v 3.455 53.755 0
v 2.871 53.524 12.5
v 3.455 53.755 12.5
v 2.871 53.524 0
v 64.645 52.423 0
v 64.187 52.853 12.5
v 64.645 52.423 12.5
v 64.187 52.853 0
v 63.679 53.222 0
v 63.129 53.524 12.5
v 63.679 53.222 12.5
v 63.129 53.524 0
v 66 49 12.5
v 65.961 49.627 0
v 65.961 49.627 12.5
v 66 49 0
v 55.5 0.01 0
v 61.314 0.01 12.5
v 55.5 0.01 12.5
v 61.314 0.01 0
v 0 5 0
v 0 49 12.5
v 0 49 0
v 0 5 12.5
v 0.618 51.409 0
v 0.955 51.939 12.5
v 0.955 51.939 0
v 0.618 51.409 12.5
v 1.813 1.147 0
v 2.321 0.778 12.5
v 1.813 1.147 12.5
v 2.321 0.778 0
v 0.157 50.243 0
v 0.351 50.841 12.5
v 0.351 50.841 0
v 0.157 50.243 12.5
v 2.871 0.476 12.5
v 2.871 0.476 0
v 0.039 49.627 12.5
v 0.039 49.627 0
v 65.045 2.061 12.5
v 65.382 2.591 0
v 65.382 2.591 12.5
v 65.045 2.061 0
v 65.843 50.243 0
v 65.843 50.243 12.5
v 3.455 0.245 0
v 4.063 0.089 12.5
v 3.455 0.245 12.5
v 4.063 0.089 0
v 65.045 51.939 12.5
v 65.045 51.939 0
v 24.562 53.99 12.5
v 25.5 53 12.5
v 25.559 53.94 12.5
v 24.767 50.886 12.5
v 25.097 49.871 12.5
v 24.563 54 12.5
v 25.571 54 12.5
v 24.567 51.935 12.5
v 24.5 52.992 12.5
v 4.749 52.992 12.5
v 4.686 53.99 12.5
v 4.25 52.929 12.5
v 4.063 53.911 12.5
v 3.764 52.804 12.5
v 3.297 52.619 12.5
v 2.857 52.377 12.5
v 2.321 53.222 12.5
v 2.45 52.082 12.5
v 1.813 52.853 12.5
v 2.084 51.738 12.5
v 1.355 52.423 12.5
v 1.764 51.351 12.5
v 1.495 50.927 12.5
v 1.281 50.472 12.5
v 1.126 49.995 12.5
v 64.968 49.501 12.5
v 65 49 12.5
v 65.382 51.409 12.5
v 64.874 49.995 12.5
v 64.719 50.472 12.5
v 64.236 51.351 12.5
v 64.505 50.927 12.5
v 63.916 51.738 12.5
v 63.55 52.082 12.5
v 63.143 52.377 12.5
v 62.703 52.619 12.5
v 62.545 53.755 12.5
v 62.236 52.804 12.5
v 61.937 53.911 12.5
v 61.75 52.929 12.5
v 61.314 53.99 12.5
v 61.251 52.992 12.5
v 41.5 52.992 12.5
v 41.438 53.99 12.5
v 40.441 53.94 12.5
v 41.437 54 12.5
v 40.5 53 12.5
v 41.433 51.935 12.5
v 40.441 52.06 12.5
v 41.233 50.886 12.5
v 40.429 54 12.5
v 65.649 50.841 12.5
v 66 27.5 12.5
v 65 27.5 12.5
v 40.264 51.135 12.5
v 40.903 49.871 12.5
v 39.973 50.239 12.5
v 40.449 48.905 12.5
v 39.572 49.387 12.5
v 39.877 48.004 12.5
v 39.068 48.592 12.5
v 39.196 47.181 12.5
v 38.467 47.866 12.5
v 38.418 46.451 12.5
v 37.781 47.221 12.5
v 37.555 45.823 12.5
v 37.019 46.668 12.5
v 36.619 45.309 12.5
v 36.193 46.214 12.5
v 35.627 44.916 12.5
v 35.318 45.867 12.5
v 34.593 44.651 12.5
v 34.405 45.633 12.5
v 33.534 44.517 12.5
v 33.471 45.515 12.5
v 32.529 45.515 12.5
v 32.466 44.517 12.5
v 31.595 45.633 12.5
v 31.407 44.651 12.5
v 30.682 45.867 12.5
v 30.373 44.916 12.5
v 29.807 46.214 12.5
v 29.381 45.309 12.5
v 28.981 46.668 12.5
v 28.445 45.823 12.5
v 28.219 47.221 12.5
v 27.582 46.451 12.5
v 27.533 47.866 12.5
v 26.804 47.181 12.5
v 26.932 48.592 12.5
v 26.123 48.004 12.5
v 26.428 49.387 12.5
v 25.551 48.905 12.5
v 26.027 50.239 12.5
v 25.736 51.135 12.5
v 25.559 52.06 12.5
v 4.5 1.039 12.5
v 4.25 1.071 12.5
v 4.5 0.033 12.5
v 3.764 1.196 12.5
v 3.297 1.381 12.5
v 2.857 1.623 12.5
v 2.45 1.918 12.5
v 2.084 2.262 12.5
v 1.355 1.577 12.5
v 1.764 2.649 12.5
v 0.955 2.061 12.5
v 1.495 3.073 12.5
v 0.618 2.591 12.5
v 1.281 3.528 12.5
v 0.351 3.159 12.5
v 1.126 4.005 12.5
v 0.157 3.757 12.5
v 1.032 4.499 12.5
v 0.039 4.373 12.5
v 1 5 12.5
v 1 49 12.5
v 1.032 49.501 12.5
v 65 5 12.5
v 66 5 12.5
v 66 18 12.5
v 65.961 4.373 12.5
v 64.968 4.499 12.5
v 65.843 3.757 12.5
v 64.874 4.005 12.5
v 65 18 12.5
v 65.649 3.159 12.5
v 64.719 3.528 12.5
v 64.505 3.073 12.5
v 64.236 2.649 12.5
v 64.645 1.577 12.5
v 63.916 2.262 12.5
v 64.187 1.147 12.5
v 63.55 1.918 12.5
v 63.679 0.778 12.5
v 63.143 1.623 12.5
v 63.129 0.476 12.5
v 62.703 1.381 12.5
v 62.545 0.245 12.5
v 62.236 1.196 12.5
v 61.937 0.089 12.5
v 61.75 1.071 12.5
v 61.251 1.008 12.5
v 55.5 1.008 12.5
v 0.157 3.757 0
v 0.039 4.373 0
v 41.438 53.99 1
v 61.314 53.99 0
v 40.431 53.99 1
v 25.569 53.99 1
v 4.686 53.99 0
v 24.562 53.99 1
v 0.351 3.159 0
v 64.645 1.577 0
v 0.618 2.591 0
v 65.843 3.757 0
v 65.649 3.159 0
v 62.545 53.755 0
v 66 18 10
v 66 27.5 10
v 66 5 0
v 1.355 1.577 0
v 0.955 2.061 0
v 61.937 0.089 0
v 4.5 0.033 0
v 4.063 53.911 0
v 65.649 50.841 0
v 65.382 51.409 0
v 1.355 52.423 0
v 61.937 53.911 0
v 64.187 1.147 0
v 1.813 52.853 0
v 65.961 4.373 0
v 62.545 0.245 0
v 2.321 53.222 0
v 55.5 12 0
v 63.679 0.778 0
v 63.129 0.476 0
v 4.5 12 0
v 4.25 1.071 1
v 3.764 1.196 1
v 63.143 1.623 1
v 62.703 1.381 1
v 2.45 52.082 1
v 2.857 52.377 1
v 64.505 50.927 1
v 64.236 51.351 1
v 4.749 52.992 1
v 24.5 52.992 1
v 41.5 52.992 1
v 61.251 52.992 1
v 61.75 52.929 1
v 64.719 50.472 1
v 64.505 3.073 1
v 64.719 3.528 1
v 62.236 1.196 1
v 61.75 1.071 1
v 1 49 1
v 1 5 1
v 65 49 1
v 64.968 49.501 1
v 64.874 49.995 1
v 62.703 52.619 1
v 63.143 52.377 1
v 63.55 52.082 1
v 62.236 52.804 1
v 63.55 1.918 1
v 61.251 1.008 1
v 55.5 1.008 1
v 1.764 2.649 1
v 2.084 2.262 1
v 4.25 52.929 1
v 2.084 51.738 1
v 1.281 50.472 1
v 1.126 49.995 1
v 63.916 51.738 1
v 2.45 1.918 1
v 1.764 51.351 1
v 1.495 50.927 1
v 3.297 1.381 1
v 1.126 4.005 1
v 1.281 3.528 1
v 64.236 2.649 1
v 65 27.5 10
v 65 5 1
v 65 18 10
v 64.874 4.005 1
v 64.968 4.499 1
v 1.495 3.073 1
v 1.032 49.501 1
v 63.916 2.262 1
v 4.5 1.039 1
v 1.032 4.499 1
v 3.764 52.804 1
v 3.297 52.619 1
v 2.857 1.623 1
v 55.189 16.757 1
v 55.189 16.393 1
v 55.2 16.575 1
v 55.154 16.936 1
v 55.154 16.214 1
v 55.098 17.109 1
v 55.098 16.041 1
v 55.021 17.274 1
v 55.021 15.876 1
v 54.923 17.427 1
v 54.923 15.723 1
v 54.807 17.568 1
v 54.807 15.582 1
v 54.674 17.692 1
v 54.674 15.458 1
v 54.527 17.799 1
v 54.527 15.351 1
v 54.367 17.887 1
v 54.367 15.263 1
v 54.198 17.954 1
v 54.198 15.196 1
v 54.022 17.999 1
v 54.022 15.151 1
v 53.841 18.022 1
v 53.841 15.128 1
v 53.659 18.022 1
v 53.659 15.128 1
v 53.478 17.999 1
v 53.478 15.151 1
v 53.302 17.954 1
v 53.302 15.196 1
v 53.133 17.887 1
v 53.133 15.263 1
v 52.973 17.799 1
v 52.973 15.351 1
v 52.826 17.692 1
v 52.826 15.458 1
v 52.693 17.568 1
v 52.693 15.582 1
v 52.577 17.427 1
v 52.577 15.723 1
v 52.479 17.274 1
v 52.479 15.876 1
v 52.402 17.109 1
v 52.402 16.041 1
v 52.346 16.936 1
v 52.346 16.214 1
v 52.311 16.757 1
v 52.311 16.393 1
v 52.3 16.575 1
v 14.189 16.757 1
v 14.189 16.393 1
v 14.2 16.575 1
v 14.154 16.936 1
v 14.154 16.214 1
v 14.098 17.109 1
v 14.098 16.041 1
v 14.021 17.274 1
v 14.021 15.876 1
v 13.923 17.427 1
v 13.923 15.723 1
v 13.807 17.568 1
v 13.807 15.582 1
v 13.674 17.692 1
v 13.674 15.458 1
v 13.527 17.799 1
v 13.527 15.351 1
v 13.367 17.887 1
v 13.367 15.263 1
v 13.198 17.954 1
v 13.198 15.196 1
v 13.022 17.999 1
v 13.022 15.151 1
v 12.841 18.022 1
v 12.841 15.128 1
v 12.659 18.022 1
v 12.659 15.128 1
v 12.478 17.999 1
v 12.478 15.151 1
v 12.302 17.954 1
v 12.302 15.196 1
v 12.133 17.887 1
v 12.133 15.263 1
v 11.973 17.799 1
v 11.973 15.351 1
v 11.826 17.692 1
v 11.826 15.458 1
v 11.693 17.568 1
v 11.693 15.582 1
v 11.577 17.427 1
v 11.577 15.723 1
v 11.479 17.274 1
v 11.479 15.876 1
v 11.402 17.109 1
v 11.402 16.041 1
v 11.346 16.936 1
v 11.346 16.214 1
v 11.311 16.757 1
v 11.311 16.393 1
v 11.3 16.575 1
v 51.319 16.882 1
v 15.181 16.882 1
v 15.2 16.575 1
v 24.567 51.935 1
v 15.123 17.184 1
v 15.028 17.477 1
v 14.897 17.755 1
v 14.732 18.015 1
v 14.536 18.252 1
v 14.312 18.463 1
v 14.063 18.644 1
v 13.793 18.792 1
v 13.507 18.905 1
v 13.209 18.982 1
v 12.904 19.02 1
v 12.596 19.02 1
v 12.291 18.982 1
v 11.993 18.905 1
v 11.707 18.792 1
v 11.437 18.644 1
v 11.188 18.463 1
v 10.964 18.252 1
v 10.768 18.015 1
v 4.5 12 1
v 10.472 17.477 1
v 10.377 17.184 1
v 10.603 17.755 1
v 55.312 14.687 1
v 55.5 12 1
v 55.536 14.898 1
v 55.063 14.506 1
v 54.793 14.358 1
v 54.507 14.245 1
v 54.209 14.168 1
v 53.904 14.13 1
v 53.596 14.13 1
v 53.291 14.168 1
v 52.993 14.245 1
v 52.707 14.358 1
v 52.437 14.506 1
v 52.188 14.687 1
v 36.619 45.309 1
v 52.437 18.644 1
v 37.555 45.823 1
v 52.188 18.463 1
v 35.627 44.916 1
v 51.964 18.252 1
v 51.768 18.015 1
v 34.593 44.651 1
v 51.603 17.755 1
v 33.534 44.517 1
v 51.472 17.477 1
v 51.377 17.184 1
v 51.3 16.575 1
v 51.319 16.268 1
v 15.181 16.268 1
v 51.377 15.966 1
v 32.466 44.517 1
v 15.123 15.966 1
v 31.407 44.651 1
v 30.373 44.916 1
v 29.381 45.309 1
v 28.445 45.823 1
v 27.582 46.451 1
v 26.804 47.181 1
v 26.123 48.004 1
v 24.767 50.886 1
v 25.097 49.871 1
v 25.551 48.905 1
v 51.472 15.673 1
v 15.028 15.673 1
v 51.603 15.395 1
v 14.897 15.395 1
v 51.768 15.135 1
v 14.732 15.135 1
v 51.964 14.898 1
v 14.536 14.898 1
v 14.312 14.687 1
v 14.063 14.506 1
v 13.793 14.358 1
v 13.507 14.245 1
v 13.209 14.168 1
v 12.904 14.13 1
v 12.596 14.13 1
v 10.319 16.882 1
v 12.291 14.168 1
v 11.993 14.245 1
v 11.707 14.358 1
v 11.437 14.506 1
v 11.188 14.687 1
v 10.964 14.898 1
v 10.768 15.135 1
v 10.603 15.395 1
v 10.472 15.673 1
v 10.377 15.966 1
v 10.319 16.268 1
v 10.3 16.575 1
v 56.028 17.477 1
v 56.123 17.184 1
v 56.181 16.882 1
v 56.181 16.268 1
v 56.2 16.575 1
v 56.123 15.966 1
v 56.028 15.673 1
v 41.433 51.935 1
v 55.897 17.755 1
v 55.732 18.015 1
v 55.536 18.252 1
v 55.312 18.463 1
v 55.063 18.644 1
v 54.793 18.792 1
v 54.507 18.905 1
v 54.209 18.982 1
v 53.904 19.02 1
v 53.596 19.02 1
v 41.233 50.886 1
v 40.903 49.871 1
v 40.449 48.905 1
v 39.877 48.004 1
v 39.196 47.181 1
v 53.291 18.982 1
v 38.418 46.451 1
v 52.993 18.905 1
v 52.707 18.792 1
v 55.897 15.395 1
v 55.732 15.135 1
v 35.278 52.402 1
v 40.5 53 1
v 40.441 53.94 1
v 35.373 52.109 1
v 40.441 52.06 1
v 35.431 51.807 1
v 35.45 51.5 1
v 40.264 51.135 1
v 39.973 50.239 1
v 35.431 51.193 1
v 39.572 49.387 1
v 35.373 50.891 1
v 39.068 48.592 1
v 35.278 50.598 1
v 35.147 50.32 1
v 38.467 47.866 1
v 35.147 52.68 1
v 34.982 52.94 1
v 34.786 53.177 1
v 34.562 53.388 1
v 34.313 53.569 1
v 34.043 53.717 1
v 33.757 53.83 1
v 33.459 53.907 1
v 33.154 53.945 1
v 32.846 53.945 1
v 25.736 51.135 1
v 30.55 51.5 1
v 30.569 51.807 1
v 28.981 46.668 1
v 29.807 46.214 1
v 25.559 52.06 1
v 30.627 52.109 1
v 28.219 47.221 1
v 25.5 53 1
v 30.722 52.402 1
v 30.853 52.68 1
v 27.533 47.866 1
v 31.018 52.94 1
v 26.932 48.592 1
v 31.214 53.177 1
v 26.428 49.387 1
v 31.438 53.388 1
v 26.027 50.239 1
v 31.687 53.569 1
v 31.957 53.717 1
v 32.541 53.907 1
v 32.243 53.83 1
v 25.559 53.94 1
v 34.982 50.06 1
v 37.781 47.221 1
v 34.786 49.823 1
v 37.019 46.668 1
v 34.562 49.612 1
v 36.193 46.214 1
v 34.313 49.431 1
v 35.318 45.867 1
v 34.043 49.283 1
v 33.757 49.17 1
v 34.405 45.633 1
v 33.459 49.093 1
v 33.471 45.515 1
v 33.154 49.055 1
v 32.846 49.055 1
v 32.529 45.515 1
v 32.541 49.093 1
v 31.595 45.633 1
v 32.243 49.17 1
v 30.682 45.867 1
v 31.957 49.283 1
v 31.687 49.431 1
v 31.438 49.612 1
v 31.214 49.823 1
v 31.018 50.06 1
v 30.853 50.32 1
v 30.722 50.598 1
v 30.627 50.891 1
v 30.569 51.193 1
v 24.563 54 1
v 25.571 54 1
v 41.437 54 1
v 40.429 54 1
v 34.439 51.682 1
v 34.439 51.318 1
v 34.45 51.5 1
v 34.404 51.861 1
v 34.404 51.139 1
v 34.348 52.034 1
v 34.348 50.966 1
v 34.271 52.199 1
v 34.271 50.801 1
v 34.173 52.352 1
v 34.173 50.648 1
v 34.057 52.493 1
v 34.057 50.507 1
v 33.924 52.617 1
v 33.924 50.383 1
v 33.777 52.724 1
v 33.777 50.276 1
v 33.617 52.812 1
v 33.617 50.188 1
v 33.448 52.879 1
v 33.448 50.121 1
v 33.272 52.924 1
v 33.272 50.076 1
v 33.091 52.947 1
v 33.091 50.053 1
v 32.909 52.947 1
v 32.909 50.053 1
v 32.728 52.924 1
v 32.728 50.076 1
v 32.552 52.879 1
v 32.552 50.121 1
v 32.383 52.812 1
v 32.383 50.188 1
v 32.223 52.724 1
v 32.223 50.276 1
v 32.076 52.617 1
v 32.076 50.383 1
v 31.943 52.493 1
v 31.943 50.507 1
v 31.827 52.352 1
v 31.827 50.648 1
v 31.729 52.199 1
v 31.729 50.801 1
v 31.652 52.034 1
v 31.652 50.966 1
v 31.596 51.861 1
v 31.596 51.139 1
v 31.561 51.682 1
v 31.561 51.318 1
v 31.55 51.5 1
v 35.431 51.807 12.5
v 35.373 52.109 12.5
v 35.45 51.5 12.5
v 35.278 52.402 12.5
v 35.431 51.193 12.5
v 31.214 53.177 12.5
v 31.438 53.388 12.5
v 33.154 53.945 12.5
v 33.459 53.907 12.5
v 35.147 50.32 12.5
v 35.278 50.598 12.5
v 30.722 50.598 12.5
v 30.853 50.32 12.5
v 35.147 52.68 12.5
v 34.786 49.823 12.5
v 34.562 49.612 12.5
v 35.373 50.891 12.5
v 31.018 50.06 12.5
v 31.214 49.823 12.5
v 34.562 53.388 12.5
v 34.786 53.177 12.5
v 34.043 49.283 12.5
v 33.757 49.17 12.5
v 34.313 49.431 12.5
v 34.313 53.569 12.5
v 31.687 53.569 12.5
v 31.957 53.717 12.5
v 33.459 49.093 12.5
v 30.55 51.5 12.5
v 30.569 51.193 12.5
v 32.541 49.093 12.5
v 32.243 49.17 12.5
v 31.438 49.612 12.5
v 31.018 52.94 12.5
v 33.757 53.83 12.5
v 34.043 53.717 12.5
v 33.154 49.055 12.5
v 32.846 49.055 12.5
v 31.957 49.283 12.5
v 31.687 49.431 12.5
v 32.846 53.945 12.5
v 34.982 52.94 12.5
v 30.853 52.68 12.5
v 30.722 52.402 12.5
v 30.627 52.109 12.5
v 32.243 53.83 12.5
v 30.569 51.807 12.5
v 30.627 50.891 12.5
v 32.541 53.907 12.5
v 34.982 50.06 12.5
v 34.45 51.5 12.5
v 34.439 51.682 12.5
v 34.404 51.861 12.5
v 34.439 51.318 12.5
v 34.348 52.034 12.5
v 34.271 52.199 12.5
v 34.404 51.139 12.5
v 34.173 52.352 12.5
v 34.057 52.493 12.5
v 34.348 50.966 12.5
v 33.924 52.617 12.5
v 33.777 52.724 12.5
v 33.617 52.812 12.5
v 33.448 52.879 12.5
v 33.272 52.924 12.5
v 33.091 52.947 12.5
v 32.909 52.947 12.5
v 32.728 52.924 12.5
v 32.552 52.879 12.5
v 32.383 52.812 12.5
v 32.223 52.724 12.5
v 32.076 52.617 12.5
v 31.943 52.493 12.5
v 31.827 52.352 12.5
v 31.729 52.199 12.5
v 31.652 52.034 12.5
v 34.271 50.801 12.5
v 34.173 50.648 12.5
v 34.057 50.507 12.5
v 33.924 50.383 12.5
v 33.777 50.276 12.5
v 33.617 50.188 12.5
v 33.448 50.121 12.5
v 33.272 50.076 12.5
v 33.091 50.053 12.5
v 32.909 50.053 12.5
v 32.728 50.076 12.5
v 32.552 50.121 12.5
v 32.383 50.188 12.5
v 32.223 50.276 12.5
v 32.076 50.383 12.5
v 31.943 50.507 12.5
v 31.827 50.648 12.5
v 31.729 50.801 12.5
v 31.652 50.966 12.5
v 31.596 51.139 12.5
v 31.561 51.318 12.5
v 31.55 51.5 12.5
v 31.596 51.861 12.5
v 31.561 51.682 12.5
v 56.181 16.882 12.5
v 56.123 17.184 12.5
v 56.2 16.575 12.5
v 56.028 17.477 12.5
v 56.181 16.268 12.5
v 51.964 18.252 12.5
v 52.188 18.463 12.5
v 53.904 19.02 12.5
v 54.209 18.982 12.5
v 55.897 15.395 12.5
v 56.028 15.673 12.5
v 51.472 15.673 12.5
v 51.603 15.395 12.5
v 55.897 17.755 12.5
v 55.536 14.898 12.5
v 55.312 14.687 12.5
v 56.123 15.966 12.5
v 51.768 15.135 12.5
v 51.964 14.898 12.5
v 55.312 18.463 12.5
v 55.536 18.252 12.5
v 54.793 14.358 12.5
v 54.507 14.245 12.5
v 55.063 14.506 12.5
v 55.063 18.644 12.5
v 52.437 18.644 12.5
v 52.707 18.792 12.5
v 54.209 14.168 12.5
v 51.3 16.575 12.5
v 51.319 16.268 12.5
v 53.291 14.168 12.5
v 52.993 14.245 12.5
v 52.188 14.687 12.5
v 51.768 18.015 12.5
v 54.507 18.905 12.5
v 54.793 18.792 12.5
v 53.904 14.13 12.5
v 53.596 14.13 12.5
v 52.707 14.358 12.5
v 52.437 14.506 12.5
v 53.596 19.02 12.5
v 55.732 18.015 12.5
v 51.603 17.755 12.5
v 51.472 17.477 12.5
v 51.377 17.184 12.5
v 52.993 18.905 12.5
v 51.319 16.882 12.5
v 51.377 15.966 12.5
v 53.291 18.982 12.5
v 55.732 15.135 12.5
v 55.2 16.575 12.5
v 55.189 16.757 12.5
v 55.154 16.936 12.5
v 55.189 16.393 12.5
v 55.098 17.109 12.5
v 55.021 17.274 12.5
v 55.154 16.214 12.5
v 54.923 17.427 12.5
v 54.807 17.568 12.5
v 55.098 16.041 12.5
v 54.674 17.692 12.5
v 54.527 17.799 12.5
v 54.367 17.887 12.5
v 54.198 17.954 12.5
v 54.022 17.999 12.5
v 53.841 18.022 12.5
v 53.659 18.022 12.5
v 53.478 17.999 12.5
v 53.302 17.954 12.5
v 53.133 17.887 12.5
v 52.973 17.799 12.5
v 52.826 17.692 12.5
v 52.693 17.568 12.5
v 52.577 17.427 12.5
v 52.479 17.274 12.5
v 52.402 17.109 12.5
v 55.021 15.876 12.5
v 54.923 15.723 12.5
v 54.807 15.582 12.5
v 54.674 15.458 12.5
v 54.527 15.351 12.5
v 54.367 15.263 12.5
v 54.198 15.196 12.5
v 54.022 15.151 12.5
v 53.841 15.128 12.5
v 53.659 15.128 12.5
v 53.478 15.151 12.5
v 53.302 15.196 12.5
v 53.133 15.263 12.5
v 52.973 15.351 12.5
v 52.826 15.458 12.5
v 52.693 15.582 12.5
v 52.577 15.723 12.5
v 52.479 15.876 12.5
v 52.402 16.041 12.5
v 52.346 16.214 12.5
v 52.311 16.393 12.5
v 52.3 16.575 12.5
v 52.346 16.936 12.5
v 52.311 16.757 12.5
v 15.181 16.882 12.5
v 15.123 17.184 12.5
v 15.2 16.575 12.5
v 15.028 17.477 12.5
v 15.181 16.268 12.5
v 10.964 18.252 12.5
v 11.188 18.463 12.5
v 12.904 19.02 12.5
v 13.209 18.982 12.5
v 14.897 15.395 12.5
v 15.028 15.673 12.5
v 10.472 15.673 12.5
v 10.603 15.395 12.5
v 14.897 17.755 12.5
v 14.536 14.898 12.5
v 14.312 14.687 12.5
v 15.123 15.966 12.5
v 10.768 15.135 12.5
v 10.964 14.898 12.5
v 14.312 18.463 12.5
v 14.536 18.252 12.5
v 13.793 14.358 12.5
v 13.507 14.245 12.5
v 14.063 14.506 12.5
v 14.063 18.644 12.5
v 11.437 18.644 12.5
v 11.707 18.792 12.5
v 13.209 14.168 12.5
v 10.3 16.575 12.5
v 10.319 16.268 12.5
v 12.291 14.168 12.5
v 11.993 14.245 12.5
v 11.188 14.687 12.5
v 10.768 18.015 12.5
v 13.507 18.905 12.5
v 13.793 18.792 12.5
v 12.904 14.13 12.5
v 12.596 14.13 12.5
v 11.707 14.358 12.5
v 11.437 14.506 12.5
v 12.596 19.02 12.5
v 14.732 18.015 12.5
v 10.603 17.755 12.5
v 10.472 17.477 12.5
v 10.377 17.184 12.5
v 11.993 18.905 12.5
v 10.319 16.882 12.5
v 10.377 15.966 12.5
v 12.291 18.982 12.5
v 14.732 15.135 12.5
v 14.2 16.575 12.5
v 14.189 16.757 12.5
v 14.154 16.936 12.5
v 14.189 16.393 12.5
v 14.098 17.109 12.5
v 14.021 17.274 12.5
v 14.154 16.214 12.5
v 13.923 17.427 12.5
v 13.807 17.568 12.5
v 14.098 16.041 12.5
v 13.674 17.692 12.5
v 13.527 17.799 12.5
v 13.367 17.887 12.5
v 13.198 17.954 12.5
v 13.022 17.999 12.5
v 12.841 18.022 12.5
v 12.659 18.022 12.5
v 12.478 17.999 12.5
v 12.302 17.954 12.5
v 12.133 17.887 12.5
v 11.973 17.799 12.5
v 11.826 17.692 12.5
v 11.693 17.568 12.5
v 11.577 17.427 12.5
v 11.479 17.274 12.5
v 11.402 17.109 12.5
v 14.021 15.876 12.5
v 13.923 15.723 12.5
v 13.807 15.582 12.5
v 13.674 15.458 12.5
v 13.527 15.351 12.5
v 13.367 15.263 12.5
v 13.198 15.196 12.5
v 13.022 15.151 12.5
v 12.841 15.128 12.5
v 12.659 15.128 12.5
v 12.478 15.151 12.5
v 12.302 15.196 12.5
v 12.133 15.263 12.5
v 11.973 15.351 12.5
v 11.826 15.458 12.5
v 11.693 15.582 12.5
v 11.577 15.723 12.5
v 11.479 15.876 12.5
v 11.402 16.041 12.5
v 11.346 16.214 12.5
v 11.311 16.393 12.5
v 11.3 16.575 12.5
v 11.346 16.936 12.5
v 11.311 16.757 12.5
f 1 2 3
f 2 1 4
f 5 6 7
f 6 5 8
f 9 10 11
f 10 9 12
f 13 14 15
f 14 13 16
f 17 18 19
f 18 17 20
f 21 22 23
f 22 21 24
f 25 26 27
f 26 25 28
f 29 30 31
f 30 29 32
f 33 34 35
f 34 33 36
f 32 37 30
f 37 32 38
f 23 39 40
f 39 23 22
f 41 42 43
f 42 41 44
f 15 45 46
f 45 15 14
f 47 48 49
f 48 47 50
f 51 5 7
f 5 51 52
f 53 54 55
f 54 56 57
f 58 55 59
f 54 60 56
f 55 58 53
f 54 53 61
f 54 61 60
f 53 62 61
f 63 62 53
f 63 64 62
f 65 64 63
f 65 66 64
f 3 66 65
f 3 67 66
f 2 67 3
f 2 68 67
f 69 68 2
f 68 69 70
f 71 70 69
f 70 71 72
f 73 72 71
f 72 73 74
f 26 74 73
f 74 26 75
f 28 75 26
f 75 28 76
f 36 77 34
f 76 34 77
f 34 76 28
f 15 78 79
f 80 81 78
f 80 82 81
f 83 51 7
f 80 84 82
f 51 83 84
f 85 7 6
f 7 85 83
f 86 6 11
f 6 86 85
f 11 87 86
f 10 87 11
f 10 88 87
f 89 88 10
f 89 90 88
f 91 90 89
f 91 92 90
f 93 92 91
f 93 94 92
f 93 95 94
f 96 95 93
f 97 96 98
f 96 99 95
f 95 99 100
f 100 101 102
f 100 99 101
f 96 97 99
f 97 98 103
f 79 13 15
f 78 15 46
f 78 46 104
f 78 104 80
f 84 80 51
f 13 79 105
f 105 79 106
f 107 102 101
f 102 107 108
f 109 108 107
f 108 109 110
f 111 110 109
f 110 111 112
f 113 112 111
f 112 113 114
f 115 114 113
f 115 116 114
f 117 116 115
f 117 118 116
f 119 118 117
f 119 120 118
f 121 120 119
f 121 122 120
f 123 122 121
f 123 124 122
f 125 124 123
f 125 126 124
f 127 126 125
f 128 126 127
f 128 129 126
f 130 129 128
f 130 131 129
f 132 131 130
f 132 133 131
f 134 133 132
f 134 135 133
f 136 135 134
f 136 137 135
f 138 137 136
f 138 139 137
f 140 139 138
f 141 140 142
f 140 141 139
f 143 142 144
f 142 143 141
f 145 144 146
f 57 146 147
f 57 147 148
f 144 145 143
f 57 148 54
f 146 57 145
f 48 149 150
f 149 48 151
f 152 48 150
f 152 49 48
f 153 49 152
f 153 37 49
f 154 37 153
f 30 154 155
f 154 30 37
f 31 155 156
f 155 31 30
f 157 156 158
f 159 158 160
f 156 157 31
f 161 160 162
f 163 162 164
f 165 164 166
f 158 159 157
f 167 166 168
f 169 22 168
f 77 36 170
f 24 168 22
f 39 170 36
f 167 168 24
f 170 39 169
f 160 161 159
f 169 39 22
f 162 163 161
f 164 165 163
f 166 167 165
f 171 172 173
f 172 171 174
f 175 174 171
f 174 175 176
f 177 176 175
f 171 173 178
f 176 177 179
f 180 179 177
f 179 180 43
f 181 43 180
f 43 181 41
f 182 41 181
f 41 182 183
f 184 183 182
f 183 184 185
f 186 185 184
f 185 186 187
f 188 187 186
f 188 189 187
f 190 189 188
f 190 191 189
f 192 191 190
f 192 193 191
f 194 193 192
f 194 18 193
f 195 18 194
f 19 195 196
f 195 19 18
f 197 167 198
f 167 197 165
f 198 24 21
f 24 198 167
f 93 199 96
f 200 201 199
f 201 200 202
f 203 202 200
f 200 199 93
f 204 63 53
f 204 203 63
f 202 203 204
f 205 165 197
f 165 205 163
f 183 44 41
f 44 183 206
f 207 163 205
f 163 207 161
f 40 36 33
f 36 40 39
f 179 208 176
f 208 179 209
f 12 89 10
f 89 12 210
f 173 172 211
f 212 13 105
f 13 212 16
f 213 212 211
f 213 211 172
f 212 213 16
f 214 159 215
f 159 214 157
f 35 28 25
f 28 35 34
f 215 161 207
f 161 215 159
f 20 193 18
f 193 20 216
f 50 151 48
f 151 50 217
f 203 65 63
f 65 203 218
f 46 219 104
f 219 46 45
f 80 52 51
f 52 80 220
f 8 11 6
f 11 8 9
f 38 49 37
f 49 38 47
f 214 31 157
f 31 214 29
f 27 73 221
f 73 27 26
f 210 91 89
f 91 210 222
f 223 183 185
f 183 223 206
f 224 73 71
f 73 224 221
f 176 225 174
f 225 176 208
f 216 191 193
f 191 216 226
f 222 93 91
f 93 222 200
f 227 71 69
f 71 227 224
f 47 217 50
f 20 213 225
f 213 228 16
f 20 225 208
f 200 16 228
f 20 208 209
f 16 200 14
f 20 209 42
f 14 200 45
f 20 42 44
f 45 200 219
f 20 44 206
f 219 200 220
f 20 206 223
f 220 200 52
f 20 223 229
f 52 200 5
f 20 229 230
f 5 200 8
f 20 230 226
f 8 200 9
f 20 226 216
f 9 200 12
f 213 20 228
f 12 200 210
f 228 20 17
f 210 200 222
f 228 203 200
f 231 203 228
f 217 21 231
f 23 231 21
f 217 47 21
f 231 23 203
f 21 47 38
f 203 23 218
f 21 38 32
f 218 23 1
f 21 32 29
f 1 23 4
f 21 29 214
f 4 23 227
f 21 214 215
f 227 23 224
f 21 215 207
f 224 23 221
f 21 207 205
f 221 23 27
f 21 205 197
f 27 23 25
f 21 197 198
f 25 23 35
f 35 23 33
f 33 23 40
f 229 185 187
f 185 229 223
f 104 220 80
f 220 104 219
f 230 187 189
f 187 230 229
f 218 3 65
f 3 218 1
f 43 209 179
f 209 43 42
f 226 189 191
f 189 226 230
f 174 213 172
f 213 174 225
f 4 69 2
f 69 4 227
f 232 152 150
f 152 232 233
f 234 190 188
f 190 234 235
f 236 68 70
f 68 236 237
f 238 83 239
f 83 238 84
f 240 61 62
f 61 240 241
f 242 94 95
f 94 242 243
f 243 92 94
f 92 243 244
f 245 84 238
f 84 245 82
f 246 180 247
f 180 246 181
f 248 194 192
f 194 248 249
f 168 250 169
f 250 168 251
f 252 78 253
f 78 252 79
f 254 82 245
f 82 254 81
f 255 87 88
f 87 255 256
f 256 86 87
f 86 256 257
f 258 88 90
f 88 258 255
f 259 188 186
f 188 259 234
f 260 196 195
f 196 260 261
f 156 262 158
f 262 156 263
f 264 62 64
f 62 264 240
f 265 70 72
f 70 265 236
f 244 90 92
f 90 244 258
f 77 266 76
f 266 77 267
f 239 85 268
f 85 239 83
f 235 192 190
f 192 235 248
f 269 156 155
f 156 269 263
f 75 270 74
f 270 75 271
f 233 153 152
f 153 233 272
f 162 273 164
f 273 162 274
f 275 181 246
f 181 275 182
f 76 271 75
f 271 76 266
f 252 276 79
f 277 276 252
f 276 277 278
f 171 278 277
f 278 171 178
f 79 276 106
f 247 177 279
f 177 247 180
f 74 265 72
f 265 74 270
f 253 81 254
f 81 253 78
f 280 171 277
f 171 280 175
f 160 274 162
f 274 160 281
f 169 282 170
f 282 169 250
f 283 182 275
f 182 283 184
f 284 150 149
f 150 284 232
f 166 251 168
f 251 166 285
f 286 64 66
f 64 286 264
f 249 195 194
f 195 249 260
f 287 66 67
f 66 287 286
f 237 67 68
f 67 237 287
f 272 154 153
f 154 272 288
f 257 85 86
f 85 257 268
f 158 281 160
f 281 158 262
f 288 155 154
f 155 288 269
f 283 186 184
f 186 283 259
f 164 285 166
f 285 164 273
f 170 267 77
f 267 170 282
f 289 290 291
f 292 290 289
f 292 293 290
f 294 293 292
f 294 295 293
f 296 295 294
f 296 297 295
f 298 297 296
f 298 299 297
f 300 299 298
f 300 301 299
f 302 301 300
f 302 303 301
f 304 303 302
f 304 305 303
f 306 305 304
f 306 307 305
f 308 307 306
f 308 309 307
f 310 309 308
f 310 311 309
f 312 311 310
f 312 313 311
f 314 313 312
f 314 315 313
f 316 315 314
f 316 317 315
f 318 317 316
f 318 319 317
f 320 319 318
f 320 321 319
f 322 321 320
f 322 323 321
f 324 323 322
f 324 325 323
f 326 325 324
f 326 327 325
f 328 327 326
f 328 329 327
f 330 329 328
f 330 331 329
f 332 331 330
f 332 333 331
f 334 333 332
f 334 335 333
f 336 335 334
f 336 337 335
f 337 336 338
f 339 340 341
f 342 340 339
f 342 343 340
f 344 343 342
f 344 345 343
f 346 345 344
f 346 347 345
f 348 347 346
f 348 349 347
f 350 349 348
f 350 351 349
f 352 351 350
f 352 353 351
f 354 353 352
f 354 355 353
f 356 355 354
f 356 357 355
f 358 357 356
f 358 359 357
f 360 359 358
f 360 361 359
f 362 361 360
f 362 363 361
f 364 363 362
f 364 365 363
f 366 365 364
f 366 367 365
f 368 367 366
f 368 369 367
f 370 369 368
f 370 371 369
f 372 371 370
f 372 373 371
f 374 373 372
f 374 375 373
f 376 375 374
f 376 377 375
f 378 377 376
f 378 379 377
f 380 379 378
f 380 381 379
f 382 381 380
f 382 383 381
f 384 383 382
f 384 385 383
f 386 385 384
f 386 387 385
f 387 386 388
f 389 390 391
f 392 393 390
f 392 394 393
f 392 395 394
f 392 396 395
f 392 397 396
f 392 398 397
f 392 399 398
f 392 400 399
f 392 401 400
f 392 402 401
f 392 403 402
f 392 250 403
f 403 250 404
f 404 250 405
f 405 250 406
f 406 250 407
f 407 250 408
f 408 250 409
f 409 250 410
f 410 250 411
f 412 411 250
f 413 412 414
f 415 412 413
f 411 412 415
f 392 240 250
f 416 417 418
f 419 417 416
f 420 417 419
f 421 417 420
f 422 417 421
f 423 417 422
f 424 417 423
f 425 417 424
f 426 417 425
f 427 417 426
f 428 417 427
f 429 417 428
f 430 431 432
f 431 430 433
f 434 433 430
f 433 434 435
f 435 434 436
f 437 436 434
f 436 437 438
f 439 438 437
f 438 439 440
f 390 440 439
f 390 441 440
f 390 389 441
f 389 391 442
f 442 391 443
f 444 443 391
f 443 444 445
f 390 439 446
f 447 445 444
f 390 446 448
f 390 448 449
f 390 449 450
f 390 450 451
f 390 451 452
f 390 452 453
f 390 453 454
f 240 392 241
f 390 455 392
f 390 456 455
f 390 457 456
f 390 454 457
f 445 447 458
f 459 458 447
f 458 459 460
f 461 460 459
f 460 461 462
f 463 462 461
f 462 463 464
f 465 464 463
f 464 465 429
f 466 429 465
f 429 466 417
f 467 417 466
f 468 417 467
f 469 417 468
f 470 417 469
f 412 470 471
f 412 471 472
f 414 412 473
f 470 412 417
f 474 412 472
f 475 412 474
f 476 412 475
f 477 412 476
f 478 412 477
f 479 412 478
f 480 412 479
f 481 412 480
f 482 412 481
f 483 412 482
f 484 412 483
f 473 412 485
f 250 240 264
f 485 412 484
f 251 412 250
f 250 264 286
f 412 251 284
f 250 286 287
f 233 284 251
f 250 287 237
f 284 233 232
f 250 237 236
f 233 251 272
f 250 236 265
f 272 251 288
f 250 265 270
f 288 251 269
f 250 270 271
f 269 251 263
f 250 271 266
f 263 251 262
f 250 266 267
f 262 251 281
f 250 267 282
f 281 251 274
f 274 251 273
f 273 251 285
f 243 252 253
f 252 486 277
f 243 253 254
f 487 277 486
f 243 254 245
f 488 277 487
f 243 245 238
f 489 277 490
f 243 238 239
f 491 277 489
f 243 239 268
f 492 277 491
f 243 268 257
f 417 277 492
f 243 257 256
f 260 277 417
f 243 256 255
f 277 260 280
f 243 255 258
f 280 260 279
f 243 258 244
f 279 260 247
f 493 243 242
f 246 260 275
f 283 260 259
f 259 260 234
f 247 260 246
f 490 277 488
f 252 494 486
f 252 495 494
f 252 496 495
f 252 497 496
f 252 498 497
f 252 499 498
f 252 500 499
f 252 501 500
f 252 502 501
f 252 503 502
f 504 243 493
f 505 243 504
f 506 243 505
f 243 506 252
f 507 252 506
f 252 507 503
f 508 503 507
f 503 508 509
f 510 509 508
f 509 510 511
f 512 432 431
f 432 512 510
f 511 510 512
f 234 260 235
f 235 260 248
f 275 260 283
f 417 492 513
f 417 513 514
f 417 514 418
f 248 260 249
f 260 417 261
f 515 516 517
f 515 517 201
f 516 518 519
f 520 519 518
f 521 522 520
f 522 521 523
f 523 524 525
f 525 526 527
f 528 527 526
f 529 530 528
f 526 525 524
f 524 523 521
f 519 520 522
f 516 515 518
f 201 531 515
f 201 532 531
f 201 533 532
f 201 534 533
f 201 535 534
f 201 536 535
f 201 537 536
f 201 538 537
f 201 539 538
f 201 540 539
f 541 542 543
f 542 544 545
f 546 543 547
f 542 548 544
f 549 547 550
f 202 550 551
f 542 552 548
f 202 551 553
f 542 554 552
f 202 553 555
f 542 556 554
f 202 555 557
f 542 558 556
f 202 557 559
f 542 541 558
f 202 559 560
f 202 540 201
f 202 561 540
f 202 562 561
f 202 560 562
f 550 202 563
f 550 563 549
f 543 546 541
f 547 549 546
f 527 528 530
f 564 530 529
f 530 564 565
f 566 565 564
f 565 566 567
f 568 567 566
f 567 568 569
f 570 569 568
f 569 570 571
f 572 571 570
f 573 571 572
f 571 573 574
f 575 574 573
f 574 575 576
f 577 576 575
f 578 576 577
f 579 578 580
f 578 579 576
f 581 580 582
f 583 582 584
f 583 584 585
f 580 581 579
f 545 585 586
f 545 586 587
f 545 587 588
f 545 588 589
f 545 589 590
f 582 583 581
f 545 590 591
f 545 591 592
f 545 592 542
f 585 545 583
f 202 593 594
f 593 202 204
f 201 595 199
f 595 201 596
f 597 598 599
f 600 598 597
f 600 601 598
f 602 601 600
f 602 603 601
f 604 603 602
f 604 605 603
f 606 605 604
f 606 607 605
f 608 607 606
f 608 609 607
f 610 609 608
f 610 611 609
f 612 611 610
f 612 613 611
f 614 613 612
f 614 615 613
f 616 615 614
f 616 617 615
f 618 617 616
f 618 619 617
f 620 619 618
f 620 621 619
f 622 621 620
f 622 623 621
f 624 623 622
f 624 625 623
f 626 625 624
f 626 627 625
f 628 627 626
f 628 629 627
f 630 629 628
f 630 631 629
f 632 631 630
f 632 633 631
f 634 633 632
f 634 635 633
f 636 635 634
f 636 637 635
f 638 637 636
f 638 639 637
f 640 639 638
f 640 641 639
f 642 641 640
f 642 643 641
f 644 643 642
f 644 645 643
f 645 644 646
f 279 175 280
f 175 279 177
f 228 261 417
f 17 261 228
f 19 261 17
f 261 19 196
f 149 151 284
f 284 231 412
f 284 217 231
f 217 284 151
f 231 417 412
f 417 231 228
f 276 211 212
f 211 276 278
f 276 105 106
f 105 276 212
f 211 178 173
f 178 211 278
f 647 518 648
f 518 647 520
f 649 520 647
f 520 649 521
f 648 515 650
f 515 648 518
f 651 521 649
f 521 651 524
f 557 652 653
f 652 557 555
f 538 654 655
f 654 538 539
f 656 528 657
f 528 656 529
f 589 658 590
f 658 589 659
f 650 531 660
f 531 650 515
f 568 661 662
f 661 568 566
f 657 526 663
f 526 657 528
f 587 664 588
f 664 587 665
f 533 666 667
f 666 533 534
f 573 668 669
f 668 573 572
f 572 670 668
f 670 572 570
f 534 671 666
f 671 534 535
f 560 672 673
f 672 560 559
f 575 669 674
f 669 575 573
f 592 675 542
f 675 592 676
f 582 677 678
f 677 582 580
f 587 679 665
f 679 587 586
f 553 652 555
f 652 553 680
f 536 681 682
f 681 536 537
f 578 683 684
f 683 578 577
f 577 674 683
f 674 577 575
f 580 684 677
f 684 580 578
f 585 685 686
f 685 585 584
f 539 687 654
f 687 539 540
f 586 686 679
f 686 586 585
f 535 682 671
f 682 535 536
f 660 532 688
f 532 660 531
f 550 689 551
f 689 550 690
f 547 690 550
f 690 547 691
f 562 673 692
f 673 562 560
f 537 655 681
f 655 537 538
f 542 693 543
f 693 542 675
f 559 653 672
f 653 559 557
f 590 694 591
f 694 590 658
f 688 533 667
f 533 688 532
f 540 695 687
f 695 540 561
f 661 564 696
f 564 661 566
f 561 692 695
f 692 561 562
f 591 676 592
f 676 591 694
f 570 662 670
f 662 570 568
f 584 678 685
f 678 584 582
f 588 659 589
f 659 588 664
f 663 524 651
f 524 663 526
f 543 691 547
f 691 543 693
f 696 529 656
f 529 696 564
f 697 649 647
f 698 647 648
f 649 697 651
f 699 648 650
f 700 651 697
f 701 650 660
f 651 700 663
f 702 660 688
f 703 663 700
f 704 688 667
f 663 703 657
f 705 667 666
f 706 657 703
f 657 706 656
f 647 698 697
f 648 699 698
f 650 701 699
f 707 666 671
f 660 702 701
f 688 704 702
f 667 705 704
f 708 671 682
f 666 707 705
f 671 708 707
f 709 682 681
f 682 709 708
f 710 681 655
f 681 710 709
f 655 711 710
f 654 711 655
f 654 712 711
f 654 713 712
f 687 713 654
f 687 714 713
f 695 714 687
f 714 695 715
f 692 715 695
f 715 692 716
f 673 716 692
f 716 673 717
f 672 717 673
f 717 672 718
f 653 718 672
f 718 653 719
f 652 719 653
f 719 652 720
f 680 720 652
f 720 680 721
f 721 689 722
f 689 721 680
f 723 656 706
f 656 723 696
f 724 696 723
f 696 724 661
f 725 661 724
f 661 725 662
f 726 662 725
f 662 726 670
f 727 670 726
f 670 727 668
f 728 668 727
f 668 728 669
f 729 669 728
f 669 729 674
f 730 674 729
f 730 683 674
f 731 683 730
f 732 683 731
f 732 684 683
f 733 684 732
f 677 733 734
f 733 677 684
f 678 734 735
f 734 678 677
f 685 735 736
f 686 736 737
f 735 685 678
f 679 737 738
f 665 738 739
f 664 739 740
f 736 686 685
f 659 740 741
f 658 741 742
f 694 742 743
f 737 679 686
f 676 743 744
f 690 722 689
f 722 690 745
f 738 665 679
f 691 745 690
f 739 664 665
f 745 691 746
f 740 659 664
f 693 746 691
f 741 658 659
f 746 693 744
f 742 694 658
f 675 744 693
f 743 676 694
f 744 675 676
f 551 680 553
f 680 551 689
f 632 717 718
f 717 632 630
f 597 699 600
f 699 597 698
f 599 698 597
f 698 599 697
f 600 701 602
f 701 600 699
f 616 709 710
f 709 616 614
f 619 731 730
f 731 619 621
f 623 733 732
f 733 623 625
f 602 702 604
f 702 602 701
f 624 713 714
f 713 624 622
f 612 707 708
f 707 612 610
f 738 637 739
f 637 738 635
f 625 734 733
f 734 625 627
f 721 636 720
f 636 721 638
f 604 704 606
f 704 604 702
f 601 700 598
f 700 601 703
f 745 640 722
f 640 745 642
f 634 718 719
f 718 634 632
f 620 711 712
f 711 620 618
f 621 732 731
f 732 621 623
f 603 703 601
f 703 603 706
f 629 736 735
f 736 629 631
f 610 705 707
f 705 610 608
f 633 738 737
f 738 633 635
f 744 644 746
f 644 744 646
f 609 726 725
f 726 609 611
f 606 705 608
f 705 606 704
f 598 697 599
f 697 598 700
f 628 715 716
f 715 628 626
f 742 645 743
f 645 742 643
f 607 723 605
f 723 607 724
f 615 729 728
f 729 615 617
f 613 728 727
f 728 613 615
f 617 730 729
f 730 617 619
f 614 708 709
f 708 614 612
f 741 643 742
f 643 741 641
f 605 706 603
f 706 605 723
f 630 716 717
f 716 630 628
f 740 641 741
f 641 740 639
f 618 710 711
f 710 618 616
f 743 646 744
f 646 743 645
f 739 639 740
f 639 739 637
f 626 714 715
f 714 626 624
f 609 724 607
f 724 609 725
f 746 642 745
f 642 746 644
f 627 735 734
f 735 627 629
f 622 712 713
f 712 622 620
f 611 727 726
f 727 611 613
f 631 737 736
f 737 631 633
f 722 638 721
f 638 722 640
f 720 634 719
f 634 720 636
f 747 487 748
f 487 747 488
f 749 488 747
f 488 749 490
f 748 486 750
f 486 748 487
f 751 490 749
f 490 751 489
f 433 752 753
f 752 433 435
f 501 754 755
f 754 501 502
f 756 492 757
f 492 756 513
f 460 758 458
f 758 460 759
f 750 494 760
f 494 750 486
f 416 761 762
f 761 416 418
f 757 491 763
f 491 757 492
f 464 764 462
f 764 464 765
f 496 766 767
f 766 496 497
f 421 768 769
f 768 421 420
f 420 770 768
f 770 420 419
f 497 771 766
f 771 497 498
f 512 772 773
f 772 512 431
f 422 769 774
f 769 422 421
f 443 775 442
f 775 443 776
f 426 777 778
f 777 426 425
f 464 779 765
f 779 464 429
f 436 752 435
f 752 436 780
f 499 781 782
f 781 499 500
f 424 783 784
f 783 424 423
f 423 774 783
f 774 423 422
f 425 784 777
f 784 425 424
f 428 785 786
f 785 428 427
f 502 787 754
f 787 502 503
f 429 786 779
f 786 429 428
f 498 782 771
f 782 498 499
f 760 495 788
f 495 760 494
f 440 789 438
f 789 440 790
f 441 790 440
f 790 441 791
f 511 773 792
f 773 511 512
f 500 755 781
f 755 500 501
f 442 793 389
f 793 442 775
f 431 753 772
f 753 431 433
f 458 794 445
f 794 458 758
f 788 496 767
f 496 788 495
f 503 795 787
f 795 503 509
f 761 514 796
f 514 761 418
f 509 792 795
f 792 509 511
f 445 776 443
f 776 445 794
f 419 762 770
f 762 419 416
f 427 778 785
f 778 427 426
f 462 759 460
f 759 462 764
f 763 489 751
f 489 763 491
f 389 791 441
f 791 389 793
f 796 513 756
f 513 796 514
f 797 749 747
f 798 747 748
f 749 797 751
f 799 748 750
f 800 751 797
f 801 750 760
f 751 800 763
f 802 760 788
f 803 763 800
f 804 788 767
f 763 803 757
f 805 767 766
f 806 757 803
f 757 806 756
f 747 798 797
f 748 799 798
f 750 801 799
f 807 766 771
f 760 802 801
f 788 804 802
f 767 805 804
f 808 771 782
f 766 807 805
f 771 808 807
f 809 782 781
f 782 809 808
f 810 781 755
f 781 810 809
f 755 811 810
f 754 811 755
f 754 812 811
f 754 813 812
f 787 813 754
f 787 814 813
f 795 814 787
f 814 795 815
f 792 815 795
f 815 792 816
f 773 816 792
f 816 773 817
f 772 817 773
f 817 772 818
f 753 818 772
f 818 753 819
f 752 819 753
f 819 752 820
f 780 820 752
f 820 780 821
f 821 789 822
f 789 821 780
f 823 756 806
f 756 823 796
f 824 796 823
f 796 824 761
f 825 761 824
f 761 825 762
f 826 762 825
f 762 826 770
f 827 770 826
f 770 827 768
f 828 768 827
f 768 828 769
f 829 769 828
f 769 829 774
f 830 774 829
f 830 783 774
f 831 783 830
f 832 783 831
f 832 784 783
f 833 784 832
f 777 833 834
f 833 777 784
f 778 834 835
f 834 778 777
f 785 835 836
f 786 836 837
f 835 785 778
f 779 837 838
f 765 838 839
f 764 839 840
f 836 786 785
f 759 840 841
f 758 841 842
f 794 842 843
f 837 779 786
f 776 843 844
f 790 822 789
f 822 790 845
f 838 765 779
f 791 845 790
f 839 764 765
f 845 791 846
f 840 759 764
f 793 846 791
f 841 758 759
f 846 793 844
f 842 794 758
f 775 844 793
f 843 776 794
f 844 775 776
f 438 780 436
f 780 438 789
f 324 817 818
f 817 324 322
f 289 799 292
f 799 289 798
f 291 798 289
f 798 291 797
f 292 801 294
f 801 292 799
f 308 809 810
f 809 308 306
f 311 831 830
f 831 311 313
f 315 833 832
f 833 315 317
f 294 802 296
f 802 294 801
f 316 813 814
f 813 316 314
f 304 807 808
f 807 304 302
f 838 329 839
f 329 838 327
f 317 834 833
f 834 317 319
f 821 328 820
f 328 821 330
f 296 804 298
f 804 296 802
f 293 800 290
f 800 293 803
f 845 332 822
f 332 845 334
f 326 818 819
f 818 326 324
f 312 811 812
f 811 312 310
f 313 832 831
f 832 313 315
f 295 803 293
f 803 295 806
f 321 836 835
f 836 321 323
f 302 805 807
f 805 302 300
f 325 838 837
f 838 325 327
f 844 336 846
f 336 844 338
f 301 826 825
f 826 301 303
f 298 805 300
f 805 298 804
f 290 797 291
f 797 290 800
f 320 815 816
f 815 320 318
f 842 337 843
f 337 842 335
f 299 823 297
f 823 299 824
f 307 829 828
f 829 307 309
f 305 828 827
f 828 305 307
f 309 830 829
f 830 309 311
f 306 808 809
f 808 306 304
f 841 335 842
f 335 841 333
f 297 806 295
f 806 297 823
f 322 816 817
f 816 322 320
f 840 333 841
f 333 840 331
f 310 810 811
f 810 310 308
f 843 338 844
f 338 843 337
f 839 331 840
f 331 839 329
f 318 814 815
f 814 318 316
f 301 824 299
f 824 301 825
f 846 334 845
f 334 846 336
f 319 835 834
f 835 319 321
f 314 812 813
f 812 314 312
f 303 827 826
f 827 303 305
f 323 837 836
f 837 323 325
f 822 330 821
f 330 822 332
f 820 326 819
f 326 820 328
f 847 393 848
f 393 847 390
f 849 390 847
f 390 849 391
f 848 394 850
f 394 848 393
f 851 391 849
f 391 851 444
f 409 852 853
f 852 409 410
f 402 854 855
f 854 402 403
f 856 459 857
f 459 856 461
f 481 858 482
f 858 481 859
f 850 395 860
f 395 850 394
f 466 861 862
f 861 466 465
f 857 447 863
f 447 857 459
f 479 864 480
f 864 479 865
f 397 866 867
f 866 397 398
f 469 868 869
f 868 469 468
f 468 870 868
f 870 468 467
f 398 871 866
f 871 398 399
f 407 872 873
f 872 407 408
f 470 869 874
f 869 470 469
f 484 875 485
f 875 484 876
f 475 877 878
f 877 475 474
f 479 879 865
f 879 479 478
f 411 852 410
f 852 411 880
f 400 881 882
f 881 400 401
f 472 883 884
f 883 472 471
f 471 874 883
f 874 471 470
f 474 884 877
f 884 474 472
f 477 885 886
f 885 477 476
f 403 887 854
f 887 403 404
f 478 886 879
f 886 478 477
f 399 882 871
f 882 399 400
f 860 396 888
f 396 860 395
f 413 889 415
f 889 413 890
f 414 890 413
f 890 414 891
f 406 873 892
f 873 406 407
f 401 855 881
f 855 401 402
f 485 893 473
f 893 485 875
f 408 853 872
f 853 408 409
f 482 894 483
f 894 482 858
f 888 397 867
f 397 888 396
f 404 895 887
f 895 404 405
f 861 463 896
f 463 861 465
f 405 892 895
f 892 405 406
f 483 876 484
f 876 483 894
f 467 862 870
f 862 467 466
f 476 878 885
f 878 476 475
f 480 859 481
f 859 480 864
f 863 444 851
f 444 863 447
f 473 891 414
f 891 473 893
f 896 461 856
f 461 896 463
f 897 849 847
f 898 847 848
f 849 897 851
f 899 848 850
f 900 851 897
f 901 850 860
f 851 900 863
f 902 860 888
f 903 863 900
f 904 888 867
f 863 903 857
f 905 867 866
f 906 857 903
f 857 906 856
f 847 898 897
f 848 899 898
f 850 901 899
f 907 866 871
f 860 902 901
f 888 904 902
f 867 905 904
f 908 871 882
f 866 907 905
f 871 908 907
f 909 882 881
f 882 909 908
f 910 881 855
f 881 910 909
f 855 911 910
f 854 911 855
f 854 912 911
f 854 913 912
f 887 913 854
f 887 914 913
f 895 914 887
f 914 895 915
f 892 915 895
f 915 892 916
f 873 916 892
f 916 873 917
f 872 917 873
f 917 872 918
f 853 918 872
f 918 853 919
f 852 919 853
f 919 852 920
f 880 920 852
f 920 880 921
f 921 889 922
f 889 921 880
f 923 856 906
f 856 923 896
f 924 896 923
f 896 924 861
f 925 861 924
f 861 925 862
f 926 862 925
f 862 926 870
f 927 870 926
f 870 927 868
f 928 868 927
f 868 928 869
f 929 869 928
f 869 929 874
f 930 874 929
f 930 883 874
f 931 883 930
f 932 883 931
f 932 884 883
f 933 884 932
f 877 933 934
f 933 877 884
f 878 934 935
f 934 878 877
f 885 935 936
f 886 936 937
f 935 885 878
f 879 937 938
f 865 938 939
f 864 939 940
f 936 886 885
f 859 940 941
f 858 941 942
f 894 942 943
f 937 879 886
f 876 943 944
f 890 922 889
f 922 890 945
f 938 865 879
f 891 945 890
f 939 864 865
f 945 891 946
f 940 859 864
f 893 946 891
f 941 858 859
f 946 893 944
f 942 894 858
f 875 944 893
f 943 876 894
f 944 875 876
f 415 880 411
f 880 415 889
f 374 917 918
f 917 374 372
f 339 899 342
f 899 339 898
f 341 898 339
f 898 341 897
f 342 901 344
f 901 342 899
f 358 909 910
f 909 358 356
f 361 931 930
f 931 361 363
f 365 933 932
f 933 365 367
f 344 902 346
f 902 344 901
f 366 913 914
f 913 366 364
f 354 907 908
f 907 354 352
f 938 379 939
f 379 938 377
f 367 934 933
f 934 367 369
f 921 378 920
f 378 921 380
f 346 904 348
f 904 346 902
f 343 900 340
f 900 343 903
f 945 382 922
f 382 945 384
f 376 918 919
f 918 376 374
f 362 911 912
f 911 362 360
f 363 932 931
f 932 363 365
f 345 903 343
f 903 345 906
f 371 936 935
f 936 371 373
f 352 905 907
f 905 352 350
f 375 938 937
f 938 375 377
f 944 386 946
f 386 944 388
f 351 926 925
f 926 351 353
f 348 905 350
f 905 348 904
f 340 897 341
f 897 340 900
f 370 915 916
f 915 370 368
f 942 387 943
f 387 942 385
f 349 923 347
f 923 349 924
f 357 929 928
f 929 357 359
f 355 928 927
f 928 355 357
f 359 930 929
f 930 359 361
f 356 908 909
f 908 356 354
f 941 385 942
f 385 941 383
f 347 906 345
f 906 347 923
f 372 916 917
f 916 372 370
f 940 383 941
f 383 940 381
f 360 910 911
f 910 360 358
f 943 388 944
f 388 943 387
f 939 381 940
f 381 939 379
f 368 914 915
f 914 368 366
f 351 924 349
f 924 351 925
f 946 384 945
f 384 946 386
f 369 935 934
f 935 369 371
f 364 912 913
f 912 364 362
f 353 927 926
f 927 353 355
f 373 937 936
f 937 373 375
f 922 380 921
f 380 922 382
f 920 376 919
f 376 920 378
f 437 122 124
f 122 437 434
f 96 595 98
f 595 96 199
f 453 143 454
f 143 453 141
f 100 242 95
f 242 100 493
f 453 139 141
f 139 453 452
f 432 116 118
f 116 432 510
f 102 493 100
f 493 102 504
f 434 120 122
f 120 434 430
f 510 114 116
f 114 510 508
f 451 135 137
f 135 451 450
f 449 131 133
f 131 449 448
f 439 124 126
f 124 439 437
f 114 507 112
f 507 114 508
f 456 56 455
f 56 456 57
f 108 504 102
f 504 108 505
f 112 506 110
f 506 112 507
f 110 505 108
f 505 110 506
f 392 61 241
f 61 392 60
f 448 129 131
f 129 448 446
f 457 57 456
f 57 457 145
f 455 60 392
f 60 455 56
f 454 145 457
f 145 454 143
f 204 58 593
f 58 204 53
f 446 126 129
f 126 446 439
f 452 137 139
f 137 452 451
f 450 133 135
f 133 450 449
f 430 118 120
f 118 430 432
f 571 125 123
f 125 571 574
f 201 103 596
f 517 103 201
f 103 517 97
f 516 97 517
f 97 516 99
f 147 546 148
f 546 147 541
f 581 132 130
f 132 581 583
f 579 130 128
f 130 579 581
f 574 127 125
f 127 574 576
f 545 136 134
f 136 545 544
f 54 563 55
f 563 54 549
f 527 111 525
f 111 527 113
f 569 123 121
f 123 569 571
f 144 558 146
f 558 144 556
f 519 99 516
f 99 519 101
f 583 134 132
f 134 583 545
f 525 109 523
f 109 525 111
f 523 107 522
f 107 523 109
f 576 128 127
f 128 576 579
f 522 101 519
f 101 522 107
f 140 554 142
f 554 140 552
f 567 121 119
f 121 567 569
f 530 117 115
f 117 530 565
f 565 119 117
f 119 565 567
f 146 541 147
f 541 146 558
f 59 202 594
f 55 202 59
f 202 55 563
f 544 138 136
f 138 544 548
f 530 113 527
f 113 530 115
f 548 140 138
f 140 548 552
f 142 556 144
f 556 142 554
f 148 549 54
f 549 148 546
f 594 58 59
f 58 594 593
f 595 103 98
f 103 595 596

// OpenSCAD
$fn=50;
h = 12.5;

module roundtagle(x, y, z, r) {
    translate([r, r, 0]) minkowski() {
        cube([x - 2*r, y - 2*r-1, z]);
        cylinder(r=r, h=1);
    }
}

module standoff() {
    difference() {
        cylinder(d=2.9+2, h=h-1);
        cylinder(d=2.9, h=h-1);
    }
}

difference() {
    roundtagle(66, 55, h - 1, 5);  // outer
    translate([1, 1, 1]) roundtagle(66 - 2, 55 - 2, h - 1, 5 - 1); // inner
    translate([4.5, 0, 0]) cube([51, 12, h]); // battery cutout
    translate([33 - 15 / 2, 55 - 2.6, 1]) cube([15, 3, h - 1]);  // lanyard cutout
    translate([66-1.5, 18, h-2.5]) cube([1.5, 9.5, 2.5]);  // switch cutout
}

translate([33, 55 - 3.5, 1]) standoff(); 
translate([53.75, 55 - 38.425, 1]) standoff(); 
translate([12.75, 55 - 38.425, 1]) standoff();

// lanyard guard arc
translate([33, 55 - 2, 1]) difference() {
    cylinder(d=17, h=h -1);
    cylinder(d=17-2, h=h -1);
    translate([-8.5, 1, 0]) cube([17, 10, h-1]);
}
